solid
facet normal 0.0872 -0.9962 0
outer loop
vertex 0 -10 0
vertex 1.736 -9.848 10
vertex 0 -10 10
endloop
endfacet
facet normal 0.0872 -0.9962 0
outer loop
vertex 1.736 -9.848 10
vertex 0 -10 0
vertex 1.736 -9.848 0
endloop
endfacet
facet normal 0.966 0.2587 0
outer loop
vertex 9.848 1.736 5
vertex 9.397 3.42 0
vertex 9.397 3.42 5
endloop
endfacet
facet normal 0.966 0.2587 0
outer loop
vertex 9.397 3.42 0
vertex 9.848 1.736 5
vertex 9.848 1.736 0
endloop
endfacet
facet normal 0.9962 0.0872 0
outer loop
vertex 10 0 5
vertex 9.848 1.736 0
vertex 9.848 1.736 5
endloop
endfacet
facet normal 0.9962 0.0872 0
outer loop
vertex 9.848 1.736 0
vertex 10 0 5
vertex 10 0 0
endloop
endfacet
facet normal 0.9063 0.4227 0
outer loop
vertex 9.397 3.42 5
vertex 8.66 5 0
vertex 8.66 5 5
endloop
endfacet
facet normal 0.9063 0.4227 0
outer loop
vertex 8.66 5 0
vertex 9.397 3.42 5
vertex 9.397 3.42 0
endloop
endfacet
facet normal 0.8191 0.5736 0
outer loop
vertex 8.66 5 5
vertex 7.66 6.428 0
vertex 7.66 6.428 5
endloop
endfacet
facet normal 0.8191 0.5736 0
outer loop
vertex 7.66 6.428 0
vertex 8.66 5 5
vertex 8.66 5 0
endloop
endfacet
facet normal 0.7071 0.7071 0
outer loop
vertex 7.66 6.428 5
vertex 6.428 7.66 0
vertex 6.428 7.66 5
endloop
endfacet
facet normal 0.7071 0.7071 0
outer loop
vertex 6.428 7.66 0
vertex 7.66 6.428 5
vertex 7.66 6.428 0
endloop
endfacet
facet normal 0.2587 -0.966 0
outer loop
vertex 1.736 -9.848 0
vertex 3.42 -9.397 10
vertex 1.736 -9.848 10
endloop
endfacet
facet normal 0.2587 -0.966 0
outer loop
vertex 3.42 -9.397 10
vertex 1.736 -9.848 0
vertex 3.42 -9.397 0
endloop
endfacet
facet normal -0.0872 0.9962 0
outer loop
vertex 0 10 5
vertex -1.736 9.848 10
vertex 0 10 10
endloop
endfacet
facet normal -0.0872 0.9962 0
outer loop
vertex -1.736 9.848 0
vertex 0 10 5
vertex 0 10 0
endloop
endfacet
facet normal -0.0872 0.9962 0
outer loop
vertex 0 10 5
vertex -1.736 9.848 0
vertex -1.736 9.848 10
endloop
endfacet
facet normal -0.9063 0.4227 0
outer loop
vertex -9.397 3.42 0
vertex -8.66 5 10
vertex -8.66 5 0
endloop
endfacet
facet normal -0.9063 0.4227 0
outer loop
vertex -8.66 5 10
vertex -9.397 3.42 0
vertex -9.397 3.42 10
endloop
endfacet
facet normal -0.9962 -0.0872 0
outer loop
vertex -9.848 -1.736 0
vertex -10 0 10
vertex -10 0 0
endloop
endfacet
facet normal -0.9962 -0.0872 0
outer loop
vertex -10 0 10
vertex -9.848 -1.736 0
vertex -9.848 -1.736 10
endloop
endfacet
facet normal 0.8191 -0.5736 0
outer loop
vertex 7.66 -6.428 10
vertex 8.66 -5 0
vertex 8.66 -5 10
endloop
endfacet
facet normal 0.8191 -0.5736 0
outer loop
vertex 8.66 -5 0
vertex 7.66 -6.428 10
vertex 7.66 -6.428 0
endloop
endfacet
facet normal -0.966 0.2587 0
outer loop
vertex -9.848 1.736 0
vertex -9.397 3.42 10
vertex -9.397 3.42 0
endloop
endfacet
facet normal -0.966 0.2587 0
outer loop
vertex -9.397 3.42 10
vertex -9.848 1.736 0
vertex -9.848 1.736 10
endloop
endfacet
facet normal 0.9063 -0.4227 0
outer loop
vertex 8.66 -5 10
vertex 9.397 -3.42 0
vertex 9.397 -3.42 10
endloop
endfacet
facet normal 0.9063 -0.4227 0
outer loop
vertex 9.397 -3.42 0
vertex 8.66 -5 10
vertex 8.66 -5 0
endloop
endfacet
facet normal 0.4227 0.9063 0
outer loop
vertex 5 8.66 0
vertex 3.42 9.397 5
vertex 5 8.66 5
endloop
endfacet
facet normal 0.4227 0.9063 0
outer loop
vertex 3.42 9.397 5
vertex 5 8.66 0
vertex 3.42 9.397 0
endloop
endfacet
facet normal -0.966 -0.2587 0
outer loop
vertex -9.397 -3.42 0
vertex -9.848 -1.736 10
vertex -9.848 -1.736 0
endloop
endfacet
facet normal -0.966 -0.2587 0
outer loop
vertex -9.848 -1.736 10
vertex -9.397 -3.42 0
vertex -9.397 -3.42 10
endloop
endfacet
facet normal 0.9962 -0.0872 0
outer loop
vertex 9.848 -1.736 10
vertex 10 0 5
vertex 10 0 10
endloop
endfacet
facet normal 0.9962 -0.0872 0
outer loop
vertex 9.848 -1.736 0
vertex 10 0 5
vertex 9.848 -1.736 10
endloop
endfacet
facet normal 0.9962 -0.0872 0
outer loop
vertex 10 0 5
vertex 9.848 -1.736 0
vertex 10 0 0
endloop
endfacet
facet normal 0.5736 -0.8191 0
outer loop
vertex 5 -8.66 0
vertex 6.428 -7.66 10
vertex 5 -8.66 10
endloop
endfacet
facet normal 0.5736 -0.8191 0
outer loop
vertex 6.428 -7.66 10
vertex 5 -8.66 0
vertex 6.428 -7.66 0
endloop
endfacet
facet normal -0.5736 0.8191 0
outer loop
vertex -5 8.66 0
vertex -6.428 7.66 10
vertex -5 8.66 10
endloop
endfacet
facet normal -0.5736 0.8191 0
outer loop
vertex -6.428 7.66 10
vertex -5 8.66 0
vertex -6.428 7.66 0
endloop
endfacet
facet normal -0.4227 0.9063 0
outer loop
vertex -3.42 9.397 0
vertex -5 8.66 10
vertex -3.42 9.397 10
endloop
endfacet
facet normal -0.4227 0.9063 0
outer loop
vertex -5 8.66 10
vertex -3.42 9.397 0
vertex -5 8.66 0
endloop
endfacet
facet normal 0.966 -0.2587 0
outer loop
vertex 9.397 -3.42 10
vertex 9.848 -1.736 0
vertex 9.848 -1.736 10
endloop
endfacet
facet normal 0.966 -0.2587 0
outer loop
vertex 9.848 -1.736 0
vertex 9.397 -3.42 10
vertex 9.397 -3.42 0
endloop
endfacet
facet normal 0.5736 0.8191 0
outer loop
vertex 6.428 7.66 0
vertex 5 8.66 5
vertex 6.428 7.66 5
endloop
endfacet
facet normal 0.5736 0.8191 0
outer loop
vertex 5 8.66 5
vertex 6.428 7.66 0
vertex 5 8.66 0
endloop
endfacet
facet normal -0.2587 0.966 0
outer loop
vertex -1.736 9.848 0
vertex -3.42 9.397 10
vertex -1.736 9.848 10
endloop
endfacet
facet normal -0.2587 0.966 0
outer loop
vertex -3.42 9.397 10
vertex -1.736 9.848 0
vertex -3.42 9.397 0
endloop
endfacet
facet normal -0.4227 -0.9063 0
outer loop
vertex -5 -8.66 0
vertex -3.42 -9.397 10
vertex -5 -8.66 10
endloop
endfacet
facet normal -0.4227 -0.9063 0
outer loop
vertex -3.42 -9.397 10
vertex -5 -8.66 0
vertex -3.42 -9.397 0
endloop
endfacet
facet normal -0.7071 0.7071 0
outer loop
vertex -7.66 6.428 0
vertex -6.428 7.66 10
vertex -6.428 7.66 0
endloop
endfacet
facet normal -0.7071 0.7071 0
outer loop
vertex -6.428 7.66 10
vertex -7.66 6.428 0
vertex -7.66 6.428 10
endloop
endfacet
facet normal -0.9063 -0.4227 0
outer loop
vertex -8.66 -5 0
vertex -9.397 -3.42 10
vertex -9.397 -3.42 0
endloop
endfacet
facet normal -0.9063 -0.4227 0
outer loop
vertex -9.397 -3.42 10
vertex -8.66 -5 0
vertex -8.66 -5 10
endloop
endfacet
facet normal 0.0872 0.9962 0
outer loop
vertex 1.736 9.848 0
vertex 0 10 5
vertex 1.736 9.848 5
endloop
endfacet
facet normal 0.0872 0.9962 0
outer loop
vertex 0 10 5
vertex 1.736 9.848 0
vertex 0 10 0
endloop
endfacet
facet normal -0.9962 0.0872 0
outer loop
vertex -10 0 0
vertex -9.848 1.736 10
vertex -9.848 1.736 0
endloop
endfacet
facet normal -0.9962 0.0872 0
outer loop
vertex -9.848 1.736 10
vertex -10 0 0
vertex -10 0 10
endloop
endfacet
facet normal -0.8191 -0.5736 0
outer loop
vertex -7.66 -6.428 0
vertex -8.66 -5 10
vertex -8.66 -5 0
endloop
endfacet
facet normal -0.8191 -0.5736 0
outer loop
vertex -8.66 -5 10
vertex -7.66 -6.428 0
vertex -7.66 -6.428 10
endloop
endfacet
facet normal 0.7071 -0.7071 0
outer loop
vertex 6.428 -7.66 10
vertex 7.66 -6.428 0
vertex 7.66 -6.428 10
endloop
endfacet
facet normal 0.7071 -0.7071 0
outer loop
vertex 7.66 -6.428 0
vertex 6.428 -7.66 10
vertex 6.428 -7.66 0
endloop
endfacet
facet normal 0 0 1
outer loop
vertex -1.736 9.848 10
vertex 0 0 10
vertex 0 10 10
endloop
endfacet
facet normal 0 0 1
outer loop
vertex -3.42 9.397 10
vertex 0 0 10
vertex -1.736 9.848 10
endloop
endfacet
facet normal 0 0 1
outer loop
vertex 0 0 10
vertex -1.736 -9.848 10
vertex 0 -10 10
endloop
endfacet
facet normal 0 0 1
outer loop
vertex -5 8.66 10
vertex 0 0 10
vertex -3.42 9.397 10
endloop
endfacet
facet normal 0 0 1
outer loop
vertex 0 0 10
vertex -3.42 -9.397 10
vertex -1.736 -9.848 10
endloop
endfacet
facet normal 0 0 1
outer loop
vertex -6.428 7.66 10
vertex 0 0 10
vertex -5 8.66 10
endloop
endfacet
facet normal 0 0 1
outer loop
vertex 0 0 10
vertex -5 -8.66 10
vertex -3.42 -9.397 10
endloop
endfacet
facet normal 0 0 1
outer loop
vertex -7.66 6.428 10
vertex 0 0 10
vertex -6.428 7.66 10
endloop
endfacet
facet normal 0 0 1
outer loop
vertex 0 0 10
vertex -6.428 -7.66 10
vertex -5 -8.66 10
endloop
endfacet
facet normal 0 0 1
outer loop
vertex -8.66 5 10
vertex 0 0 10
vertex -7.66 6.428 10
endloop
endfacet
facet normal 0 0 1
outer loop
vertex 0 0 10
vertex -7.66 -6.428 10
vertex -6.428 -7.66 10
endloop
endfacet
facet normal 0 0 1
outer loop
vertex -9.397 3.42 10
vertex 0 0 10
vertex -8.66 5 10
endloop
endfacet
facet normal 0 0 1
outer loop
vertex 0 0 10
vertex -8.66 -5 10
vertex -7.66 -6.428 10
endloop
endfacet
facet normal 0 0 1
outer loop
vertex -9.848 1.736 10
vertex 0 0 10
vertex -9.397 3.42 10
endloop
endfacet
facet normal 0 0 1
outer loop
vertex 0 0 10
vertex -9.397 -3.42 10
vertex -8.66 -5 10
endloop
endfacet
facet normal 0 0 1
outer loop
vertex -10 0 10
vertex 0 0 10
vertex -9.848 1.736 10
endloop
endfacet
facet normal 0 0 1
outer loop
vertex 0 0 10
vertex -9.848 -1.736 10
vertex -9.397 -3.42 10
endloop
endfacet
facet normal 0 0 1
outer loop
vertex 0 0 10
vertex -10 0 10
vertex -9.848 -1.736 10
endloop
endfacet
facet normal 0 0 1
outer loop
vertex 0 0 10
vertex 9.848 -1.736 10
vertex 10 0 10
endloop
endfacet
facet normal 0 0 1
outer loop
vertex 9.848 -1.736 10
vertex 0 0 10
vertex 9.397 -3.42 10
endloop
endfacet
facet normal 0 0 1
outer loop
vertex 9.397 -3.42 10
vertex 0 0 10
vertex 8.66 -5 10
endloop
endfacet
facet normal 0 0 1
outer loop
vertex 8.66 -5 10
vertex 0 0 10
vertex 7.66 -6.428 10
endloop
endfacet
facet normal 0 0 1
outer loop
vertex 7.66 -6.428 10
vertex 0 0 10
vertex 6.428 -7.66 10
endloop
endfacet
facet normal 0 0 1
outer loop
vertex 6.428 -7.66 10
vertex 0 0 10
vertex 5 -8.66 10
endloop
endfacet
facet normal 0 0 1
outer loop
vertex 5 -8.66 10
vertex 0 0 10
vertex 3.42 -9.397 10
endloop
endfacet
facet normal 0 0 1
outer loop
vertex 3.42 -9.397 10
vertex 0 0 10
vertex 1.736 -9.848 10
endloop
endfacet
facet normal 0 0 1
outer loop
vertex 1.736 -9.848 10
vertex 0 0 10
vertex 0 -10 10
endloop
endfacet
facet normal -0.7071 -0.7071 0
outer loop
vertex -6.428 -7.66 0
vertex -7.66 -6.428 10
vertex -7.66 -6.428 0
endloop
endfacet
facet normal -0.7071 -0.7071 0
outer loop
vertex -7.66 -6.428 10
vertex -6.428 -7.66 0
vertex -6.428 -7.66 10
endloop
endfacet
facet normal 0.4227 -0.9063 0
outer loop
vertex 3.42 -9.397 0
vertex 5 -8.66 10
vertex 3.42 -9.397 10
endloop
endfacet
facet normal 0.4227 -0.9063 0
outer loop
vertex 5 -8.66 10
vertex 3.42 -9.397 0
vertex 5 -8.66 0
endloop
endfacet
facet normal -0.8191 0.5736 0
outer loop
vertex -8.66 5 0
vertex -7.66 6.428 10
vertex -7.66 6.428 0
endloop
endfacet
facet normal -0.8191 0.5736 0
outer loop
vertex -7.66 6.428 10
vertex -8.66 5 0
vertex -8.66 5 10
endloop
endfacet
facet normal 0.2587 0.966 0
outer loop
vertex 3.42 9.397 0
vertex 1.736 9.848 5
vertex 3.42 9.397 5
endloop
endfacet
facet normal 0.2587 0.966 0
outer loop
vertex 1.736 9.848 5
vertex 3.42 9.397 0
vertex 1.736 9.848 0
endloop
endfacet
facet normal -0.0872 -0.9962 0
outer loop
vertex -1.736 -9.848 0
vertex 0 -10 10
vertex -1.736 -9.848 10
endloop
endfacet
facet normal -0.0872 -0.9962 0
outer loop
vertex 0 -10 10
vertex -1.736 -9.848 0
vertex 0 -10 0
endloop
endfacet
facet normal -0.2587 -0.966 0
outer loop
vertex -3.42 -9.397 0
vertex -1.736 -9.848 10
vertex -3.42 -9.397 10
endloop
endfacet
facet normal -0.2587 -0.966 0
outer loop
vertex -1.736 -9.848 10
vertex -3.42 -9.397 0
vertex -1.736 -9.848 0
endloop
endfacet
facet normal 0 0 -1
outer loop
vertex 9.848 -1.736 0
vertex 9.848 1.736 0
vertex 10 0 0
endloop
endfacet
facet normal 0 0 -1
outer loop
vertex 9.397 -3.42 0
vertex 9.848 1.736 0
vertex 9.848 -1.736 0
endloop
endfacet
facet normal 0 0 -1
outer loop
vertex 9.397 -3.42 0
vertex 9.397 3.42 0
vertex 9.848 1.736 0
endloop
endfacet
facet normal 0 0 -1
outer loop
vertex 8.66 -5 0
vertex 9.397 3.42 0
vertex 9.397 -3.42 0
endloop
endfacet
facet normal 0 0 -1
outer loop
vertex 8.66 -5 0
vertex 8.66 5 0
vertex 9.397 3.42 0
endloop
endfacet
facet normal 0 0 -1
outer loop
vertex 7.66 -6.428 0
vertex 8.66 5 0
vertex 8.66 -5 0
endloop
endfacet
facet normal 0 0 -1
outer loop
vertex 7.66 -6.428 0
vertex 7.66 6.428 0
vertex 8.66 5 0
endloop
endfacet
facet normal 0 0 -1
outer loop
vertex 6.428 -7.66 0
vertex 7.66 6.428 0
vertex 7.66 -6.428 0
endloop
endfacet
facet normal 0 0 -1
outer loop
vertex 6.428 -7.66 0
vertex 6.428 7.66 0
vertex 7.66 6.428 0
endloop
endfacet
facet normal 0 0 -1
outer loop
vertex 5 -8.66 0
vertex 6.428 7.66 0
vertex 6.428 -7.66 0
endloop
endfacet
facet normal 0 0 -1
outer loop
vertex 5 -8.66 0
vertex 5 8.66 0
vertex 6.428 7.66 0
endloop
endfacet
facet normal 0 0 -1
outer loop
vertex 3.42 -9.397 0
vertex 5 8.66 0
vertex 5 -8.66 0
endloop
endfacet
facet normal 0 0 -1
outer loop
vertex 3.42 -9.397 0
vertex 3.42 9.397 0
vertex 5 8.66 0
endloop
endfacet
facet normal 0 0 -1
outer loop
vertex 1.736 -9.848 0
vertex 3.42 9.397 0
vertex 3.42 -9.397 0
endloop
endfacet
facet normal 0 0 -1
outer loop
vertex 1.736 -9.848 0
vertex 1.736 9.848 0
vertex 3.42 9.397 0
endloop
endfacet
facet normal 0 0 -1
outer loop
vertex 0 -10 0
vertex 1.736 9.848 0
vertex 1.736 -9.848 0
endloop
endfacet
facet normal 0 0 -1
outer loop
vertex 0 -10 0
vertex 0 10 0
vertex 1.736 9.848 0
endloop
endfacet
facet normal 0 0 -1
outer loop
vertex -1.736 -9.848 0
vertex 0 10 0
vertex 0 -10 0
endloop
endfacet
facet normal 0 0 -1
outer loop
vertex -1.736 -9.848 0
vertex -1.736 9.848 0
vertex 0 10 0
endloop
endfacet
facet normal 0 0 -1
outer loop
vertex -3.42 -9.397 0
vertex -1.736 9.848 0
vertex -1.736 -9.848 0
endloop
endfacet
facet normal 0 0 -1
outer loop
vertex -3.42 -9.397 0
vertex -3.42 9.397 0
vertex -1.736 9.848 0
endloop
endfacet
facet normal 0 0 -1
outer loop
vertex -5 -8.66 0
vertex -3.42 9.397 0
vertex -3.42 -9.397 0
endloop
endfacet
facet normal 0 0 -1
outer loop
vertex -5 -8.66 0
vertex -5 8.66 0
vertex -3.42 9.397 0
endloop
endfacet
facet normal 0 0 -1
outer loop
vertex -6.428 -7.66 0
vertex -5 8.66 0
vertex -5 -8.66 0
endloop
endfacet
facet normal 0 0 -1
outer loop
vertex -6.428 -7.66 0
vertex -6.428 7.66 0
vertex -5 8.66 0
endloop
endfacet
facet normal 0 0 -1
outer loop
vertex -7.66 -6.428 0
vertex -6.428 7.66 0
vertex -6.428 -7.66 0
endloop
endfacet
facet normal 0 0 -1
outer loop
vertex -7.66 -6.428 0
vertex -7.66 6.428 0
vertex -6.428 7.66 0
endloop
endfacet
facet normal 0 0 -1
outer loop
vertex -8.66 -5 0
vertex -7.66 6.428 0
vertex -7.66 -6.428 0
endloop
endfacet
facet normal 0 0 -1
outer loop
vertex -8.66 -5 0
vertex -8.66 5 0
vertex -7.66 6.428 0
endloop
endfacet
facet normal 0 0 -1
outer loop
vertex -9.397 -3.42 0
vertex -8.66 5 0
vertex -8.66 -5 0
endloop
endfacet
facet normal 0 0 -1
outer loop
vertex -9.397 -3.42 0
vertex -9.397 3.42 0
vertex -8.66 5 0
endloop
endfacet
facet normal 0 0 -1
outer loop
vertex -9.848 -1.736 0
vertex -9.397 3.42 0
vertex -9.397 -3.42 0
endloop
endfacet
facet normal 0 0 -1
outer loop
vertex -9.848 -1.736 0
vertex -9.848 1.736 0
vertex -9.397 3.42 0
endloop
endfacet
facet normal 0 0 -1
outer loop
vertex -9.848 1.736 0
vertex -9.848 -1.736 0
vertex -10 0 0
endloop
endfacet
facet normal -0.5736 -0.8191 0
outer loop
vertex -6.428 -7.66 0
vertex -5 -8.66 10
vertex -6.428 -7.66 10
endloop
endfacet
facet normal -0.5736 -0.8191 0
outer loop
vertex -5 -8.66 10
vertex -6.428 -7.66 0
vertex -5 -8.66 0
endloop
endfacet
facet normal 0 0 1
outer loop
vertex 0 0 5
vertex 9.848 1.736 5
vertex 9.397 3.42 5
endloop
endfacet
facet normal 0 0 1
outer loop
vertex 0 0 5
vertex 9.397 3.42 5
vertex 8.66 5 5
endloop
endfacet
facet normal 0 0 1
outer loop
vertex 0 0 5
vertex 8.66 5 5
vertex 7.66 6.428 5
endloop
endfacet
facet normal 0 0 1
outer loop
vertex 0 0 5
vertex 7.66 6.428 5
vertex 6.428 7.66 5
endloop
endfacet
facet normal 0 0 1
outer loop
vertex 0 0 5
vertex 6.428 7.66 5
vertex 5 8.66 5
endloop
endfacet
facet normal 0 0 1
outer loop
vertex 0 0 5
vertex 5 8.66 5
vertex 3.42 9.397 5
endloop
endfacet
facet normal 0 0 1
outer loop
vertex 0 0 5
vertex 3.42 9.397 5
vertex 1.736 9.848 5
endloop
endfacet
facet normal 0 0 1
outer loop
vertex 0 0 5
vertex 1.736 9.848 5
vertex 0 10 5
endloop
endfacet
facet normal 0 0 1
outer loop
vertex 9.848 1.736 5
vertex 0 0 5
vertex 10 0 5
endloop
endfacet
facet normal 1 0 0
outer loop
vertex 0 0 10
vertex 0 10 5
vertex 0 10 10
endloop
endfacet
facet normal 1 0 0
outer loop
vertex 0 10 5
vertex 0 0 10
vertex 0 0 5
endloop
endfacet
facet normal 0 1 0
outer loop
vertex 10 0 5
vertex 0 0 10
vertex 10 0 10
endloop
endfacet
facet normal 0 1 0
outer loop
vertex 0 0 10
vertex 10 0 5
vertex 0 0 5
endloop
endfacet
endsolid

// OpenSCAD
// Trefoil Knot - Simplified version

// Parameters
radius = 10;
width = 15;
height = 10;
segments = 36;

module trefoil_knot() {
  difference() {
    union() {
      // Base
      cylinder(h = height, r = radius, $fn = segments);

      // Knot
      translate([0, 0, height])
        rotate([0, 0, 15])
          linear_extrude(height = width)
            polygon(points = [
              [0, 0],
              [0.5, 0],
              [0.5, height],
              [1, height]
            ]);
    }
    
    // Remove material to create the knot shape
    translate([0,0,height/2])
      cube([width,width,height]);
  }

  rotate([0,0,15])
  translate([0, 0, height/2])
      linear_extrude(height = width)
        polygon(points = [
          [0, 0],
          [0.5, 0],
          [0.5, height],
          [1, height]
        ]);
}

trefoil_knot();
